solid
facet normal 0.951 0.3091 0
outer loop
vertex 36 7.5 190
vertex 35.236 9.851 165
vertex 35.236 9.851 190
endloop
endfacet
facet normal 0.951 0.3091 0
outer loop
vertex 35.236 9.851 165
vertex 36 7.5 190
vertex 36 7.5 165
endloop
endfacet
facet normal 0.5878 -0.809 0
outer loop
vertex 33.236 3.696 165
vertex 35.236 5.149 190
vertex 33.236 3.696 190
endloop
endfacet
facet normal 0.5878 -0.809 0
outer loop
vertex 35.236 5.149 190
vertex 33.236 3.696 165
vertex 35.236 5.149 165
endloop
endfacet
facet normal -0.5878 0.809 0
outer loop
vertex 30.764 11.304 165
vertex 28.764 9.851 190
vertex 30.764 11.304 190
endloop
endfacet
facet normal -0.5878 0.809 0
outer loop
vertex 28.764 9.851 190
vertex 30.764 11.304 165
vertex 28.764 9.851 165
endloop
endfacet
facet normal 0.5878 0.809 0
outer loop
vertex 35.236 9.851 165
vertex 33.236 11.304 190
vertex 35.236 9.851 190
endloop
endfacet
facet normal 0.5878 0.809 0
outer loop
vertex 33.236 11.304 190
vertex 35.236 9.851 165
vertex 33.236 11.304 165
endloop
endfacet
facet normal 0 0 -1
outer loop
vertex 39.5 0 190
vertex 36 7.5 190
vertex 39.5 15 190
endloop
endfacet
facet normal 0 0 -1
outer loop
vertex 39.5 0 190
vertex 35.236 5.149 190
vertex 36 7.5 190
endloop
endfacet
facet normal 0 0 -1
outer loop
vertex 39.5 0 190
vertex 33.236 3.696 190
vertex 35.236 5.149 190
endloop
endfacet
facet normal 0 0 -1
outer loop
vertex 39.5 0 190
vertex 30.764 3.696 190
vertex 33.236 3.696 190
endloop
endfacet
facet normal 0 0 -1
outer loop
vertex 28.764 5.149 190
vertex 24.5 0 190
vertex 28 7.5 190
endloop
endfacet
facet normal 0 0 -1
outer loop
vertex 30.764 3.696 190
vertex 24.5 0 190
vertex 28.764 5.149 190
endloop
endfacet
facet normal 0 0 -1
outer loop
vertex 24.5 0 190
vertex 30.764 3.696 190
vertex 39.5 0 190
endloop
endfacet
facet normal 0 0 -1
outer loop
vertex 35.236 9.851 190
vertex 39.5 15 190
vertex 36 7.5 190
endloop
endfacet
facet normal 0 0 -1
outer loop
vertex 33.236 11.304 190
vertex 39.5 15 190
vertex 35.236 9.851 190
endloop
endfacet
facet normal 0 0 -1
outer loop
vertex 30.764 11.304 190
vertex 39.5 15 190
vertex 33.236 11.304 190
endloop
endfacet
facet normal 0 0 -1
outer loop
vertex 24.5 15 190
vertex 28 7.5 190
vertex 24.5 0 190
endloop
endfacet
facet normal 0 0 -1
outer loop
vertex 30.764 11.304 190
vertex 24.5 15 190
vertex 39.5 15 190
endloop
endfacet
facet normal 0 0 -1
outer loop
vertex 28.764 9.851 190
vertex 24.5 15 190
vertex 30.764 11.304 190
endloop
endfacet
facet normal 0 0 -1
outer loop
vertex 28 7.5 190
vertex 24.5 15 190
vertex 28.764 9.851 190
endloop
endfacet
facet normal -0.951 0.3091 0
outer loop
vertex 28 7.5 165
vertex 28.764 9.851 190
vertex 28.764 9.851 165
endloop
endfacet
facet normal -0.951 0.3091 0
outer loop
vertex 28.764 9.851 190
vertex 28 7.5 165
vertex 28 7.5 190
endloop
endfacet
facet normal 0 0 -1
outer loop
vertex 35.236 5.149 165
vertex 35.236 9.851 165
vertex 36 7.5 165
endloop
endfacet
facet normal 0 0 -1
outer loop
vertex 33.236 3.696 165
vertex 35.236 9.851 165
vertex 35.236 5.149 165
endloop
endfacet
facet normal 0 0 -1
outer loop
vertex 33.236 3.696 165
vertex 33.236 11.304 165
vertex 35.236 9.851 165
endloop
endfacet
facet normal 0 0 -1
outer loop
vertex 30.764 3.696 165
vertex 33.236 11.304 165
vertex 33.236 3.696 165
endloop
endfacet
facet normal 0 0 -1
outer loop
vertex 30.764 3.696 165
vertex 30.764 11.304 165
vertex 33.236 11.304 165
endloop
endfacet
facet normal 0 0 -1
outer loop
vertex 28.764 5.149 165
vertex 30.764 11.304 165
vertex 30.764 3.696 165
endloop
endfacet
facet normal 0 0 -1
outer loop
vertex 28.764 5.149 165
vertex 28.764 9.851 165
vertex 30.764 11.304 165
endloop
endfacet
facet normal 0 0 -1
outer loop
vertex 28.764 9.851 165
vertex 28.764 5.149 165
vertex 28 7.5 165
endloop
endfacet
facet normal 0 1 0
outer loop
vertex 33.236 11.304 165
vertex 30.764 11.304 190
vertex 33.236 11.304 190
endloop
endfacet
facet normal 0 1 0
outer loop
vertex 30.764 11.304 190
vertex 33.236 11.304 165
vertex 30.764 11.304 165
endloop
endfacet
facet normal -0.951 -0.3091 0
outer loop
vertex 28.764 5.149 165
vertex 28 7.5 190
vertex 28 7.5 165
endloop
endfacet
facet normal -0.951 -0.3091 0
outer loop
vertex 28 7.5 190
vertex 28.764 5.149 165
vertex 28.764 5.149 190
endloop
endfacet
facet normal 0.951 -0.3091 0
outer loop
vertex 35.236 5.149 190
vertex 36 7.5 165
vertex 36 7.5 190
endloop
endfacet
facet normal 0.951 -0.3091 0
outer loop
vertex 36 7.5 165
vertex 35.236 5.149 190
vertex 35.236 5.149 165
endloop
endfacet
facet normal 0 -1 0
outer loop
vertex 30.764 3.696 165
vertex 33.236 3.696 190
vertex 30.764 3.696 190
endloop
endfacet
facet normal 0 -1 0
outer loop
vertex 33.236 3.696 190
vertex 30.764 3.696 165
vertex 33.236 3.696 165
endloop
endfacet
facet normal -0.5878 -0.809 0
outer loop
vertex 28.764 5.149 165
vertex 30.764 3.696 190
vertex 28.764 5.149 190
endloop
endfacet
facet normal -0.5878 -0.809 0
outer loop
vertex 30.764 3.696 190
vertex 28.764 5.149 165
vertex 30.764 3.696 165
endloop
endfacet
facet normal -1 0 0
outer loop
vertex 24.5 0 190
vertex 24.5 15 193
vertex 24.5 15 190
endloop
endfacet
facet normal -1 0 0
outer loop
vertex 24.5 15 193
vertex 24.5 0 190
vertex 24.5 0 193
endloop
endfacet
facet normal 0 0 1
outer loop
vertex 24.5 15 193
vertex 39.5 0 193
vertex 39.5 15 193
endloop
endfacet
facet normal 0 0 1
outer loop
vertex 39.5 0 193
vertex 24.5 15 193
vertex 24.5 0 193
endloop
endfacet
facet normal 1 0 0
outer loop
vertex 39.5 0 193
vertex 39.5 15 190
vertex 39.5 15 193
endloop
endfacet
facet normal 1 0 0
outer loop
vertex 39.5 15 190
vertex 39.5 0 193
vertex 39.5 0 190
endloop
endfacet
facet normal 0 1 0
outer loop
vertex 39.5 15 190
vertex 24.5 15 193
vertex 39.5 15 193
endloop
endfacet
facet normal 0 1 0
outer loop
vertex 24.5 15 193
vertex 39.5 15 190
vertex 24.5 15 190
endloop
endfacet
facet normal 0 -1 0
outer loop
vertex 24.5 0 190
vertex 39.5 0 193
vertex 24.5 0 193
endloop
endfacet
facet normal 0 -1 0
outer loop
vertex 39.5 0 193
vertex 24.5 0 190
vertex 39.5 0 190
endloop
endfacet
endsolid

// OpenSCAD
res=10;

d=9.5;
base_x=1;
base_y=1;
pilar_x=15;
pilar_y=15;
pilar_z=160;
base_fixa_x=2*6.8+2*25.2;
base_fixa_y=15;
base_fixa_z=2;

entre_imas=90;
enc_cil_ima=9.9/2;
fixa_ima=1;
fixa_ima_z=1;


translate([(base_fixa_x-pilar_x)/2-(entre_imas-pilar_x)/2,0,pilar_z])
translate([entre_imas/2,15/2,20-15])
cylinder(25,4,4,$fn=res);
translate([(base_fixa_x-pilar_x)/2-(entre_imas-pilar_x)/2,0,pilar_z])
translate([entre_imas/2,15/2,20+10])
translate([-15/2,-15/2,0])
cube([15,15,3]);
